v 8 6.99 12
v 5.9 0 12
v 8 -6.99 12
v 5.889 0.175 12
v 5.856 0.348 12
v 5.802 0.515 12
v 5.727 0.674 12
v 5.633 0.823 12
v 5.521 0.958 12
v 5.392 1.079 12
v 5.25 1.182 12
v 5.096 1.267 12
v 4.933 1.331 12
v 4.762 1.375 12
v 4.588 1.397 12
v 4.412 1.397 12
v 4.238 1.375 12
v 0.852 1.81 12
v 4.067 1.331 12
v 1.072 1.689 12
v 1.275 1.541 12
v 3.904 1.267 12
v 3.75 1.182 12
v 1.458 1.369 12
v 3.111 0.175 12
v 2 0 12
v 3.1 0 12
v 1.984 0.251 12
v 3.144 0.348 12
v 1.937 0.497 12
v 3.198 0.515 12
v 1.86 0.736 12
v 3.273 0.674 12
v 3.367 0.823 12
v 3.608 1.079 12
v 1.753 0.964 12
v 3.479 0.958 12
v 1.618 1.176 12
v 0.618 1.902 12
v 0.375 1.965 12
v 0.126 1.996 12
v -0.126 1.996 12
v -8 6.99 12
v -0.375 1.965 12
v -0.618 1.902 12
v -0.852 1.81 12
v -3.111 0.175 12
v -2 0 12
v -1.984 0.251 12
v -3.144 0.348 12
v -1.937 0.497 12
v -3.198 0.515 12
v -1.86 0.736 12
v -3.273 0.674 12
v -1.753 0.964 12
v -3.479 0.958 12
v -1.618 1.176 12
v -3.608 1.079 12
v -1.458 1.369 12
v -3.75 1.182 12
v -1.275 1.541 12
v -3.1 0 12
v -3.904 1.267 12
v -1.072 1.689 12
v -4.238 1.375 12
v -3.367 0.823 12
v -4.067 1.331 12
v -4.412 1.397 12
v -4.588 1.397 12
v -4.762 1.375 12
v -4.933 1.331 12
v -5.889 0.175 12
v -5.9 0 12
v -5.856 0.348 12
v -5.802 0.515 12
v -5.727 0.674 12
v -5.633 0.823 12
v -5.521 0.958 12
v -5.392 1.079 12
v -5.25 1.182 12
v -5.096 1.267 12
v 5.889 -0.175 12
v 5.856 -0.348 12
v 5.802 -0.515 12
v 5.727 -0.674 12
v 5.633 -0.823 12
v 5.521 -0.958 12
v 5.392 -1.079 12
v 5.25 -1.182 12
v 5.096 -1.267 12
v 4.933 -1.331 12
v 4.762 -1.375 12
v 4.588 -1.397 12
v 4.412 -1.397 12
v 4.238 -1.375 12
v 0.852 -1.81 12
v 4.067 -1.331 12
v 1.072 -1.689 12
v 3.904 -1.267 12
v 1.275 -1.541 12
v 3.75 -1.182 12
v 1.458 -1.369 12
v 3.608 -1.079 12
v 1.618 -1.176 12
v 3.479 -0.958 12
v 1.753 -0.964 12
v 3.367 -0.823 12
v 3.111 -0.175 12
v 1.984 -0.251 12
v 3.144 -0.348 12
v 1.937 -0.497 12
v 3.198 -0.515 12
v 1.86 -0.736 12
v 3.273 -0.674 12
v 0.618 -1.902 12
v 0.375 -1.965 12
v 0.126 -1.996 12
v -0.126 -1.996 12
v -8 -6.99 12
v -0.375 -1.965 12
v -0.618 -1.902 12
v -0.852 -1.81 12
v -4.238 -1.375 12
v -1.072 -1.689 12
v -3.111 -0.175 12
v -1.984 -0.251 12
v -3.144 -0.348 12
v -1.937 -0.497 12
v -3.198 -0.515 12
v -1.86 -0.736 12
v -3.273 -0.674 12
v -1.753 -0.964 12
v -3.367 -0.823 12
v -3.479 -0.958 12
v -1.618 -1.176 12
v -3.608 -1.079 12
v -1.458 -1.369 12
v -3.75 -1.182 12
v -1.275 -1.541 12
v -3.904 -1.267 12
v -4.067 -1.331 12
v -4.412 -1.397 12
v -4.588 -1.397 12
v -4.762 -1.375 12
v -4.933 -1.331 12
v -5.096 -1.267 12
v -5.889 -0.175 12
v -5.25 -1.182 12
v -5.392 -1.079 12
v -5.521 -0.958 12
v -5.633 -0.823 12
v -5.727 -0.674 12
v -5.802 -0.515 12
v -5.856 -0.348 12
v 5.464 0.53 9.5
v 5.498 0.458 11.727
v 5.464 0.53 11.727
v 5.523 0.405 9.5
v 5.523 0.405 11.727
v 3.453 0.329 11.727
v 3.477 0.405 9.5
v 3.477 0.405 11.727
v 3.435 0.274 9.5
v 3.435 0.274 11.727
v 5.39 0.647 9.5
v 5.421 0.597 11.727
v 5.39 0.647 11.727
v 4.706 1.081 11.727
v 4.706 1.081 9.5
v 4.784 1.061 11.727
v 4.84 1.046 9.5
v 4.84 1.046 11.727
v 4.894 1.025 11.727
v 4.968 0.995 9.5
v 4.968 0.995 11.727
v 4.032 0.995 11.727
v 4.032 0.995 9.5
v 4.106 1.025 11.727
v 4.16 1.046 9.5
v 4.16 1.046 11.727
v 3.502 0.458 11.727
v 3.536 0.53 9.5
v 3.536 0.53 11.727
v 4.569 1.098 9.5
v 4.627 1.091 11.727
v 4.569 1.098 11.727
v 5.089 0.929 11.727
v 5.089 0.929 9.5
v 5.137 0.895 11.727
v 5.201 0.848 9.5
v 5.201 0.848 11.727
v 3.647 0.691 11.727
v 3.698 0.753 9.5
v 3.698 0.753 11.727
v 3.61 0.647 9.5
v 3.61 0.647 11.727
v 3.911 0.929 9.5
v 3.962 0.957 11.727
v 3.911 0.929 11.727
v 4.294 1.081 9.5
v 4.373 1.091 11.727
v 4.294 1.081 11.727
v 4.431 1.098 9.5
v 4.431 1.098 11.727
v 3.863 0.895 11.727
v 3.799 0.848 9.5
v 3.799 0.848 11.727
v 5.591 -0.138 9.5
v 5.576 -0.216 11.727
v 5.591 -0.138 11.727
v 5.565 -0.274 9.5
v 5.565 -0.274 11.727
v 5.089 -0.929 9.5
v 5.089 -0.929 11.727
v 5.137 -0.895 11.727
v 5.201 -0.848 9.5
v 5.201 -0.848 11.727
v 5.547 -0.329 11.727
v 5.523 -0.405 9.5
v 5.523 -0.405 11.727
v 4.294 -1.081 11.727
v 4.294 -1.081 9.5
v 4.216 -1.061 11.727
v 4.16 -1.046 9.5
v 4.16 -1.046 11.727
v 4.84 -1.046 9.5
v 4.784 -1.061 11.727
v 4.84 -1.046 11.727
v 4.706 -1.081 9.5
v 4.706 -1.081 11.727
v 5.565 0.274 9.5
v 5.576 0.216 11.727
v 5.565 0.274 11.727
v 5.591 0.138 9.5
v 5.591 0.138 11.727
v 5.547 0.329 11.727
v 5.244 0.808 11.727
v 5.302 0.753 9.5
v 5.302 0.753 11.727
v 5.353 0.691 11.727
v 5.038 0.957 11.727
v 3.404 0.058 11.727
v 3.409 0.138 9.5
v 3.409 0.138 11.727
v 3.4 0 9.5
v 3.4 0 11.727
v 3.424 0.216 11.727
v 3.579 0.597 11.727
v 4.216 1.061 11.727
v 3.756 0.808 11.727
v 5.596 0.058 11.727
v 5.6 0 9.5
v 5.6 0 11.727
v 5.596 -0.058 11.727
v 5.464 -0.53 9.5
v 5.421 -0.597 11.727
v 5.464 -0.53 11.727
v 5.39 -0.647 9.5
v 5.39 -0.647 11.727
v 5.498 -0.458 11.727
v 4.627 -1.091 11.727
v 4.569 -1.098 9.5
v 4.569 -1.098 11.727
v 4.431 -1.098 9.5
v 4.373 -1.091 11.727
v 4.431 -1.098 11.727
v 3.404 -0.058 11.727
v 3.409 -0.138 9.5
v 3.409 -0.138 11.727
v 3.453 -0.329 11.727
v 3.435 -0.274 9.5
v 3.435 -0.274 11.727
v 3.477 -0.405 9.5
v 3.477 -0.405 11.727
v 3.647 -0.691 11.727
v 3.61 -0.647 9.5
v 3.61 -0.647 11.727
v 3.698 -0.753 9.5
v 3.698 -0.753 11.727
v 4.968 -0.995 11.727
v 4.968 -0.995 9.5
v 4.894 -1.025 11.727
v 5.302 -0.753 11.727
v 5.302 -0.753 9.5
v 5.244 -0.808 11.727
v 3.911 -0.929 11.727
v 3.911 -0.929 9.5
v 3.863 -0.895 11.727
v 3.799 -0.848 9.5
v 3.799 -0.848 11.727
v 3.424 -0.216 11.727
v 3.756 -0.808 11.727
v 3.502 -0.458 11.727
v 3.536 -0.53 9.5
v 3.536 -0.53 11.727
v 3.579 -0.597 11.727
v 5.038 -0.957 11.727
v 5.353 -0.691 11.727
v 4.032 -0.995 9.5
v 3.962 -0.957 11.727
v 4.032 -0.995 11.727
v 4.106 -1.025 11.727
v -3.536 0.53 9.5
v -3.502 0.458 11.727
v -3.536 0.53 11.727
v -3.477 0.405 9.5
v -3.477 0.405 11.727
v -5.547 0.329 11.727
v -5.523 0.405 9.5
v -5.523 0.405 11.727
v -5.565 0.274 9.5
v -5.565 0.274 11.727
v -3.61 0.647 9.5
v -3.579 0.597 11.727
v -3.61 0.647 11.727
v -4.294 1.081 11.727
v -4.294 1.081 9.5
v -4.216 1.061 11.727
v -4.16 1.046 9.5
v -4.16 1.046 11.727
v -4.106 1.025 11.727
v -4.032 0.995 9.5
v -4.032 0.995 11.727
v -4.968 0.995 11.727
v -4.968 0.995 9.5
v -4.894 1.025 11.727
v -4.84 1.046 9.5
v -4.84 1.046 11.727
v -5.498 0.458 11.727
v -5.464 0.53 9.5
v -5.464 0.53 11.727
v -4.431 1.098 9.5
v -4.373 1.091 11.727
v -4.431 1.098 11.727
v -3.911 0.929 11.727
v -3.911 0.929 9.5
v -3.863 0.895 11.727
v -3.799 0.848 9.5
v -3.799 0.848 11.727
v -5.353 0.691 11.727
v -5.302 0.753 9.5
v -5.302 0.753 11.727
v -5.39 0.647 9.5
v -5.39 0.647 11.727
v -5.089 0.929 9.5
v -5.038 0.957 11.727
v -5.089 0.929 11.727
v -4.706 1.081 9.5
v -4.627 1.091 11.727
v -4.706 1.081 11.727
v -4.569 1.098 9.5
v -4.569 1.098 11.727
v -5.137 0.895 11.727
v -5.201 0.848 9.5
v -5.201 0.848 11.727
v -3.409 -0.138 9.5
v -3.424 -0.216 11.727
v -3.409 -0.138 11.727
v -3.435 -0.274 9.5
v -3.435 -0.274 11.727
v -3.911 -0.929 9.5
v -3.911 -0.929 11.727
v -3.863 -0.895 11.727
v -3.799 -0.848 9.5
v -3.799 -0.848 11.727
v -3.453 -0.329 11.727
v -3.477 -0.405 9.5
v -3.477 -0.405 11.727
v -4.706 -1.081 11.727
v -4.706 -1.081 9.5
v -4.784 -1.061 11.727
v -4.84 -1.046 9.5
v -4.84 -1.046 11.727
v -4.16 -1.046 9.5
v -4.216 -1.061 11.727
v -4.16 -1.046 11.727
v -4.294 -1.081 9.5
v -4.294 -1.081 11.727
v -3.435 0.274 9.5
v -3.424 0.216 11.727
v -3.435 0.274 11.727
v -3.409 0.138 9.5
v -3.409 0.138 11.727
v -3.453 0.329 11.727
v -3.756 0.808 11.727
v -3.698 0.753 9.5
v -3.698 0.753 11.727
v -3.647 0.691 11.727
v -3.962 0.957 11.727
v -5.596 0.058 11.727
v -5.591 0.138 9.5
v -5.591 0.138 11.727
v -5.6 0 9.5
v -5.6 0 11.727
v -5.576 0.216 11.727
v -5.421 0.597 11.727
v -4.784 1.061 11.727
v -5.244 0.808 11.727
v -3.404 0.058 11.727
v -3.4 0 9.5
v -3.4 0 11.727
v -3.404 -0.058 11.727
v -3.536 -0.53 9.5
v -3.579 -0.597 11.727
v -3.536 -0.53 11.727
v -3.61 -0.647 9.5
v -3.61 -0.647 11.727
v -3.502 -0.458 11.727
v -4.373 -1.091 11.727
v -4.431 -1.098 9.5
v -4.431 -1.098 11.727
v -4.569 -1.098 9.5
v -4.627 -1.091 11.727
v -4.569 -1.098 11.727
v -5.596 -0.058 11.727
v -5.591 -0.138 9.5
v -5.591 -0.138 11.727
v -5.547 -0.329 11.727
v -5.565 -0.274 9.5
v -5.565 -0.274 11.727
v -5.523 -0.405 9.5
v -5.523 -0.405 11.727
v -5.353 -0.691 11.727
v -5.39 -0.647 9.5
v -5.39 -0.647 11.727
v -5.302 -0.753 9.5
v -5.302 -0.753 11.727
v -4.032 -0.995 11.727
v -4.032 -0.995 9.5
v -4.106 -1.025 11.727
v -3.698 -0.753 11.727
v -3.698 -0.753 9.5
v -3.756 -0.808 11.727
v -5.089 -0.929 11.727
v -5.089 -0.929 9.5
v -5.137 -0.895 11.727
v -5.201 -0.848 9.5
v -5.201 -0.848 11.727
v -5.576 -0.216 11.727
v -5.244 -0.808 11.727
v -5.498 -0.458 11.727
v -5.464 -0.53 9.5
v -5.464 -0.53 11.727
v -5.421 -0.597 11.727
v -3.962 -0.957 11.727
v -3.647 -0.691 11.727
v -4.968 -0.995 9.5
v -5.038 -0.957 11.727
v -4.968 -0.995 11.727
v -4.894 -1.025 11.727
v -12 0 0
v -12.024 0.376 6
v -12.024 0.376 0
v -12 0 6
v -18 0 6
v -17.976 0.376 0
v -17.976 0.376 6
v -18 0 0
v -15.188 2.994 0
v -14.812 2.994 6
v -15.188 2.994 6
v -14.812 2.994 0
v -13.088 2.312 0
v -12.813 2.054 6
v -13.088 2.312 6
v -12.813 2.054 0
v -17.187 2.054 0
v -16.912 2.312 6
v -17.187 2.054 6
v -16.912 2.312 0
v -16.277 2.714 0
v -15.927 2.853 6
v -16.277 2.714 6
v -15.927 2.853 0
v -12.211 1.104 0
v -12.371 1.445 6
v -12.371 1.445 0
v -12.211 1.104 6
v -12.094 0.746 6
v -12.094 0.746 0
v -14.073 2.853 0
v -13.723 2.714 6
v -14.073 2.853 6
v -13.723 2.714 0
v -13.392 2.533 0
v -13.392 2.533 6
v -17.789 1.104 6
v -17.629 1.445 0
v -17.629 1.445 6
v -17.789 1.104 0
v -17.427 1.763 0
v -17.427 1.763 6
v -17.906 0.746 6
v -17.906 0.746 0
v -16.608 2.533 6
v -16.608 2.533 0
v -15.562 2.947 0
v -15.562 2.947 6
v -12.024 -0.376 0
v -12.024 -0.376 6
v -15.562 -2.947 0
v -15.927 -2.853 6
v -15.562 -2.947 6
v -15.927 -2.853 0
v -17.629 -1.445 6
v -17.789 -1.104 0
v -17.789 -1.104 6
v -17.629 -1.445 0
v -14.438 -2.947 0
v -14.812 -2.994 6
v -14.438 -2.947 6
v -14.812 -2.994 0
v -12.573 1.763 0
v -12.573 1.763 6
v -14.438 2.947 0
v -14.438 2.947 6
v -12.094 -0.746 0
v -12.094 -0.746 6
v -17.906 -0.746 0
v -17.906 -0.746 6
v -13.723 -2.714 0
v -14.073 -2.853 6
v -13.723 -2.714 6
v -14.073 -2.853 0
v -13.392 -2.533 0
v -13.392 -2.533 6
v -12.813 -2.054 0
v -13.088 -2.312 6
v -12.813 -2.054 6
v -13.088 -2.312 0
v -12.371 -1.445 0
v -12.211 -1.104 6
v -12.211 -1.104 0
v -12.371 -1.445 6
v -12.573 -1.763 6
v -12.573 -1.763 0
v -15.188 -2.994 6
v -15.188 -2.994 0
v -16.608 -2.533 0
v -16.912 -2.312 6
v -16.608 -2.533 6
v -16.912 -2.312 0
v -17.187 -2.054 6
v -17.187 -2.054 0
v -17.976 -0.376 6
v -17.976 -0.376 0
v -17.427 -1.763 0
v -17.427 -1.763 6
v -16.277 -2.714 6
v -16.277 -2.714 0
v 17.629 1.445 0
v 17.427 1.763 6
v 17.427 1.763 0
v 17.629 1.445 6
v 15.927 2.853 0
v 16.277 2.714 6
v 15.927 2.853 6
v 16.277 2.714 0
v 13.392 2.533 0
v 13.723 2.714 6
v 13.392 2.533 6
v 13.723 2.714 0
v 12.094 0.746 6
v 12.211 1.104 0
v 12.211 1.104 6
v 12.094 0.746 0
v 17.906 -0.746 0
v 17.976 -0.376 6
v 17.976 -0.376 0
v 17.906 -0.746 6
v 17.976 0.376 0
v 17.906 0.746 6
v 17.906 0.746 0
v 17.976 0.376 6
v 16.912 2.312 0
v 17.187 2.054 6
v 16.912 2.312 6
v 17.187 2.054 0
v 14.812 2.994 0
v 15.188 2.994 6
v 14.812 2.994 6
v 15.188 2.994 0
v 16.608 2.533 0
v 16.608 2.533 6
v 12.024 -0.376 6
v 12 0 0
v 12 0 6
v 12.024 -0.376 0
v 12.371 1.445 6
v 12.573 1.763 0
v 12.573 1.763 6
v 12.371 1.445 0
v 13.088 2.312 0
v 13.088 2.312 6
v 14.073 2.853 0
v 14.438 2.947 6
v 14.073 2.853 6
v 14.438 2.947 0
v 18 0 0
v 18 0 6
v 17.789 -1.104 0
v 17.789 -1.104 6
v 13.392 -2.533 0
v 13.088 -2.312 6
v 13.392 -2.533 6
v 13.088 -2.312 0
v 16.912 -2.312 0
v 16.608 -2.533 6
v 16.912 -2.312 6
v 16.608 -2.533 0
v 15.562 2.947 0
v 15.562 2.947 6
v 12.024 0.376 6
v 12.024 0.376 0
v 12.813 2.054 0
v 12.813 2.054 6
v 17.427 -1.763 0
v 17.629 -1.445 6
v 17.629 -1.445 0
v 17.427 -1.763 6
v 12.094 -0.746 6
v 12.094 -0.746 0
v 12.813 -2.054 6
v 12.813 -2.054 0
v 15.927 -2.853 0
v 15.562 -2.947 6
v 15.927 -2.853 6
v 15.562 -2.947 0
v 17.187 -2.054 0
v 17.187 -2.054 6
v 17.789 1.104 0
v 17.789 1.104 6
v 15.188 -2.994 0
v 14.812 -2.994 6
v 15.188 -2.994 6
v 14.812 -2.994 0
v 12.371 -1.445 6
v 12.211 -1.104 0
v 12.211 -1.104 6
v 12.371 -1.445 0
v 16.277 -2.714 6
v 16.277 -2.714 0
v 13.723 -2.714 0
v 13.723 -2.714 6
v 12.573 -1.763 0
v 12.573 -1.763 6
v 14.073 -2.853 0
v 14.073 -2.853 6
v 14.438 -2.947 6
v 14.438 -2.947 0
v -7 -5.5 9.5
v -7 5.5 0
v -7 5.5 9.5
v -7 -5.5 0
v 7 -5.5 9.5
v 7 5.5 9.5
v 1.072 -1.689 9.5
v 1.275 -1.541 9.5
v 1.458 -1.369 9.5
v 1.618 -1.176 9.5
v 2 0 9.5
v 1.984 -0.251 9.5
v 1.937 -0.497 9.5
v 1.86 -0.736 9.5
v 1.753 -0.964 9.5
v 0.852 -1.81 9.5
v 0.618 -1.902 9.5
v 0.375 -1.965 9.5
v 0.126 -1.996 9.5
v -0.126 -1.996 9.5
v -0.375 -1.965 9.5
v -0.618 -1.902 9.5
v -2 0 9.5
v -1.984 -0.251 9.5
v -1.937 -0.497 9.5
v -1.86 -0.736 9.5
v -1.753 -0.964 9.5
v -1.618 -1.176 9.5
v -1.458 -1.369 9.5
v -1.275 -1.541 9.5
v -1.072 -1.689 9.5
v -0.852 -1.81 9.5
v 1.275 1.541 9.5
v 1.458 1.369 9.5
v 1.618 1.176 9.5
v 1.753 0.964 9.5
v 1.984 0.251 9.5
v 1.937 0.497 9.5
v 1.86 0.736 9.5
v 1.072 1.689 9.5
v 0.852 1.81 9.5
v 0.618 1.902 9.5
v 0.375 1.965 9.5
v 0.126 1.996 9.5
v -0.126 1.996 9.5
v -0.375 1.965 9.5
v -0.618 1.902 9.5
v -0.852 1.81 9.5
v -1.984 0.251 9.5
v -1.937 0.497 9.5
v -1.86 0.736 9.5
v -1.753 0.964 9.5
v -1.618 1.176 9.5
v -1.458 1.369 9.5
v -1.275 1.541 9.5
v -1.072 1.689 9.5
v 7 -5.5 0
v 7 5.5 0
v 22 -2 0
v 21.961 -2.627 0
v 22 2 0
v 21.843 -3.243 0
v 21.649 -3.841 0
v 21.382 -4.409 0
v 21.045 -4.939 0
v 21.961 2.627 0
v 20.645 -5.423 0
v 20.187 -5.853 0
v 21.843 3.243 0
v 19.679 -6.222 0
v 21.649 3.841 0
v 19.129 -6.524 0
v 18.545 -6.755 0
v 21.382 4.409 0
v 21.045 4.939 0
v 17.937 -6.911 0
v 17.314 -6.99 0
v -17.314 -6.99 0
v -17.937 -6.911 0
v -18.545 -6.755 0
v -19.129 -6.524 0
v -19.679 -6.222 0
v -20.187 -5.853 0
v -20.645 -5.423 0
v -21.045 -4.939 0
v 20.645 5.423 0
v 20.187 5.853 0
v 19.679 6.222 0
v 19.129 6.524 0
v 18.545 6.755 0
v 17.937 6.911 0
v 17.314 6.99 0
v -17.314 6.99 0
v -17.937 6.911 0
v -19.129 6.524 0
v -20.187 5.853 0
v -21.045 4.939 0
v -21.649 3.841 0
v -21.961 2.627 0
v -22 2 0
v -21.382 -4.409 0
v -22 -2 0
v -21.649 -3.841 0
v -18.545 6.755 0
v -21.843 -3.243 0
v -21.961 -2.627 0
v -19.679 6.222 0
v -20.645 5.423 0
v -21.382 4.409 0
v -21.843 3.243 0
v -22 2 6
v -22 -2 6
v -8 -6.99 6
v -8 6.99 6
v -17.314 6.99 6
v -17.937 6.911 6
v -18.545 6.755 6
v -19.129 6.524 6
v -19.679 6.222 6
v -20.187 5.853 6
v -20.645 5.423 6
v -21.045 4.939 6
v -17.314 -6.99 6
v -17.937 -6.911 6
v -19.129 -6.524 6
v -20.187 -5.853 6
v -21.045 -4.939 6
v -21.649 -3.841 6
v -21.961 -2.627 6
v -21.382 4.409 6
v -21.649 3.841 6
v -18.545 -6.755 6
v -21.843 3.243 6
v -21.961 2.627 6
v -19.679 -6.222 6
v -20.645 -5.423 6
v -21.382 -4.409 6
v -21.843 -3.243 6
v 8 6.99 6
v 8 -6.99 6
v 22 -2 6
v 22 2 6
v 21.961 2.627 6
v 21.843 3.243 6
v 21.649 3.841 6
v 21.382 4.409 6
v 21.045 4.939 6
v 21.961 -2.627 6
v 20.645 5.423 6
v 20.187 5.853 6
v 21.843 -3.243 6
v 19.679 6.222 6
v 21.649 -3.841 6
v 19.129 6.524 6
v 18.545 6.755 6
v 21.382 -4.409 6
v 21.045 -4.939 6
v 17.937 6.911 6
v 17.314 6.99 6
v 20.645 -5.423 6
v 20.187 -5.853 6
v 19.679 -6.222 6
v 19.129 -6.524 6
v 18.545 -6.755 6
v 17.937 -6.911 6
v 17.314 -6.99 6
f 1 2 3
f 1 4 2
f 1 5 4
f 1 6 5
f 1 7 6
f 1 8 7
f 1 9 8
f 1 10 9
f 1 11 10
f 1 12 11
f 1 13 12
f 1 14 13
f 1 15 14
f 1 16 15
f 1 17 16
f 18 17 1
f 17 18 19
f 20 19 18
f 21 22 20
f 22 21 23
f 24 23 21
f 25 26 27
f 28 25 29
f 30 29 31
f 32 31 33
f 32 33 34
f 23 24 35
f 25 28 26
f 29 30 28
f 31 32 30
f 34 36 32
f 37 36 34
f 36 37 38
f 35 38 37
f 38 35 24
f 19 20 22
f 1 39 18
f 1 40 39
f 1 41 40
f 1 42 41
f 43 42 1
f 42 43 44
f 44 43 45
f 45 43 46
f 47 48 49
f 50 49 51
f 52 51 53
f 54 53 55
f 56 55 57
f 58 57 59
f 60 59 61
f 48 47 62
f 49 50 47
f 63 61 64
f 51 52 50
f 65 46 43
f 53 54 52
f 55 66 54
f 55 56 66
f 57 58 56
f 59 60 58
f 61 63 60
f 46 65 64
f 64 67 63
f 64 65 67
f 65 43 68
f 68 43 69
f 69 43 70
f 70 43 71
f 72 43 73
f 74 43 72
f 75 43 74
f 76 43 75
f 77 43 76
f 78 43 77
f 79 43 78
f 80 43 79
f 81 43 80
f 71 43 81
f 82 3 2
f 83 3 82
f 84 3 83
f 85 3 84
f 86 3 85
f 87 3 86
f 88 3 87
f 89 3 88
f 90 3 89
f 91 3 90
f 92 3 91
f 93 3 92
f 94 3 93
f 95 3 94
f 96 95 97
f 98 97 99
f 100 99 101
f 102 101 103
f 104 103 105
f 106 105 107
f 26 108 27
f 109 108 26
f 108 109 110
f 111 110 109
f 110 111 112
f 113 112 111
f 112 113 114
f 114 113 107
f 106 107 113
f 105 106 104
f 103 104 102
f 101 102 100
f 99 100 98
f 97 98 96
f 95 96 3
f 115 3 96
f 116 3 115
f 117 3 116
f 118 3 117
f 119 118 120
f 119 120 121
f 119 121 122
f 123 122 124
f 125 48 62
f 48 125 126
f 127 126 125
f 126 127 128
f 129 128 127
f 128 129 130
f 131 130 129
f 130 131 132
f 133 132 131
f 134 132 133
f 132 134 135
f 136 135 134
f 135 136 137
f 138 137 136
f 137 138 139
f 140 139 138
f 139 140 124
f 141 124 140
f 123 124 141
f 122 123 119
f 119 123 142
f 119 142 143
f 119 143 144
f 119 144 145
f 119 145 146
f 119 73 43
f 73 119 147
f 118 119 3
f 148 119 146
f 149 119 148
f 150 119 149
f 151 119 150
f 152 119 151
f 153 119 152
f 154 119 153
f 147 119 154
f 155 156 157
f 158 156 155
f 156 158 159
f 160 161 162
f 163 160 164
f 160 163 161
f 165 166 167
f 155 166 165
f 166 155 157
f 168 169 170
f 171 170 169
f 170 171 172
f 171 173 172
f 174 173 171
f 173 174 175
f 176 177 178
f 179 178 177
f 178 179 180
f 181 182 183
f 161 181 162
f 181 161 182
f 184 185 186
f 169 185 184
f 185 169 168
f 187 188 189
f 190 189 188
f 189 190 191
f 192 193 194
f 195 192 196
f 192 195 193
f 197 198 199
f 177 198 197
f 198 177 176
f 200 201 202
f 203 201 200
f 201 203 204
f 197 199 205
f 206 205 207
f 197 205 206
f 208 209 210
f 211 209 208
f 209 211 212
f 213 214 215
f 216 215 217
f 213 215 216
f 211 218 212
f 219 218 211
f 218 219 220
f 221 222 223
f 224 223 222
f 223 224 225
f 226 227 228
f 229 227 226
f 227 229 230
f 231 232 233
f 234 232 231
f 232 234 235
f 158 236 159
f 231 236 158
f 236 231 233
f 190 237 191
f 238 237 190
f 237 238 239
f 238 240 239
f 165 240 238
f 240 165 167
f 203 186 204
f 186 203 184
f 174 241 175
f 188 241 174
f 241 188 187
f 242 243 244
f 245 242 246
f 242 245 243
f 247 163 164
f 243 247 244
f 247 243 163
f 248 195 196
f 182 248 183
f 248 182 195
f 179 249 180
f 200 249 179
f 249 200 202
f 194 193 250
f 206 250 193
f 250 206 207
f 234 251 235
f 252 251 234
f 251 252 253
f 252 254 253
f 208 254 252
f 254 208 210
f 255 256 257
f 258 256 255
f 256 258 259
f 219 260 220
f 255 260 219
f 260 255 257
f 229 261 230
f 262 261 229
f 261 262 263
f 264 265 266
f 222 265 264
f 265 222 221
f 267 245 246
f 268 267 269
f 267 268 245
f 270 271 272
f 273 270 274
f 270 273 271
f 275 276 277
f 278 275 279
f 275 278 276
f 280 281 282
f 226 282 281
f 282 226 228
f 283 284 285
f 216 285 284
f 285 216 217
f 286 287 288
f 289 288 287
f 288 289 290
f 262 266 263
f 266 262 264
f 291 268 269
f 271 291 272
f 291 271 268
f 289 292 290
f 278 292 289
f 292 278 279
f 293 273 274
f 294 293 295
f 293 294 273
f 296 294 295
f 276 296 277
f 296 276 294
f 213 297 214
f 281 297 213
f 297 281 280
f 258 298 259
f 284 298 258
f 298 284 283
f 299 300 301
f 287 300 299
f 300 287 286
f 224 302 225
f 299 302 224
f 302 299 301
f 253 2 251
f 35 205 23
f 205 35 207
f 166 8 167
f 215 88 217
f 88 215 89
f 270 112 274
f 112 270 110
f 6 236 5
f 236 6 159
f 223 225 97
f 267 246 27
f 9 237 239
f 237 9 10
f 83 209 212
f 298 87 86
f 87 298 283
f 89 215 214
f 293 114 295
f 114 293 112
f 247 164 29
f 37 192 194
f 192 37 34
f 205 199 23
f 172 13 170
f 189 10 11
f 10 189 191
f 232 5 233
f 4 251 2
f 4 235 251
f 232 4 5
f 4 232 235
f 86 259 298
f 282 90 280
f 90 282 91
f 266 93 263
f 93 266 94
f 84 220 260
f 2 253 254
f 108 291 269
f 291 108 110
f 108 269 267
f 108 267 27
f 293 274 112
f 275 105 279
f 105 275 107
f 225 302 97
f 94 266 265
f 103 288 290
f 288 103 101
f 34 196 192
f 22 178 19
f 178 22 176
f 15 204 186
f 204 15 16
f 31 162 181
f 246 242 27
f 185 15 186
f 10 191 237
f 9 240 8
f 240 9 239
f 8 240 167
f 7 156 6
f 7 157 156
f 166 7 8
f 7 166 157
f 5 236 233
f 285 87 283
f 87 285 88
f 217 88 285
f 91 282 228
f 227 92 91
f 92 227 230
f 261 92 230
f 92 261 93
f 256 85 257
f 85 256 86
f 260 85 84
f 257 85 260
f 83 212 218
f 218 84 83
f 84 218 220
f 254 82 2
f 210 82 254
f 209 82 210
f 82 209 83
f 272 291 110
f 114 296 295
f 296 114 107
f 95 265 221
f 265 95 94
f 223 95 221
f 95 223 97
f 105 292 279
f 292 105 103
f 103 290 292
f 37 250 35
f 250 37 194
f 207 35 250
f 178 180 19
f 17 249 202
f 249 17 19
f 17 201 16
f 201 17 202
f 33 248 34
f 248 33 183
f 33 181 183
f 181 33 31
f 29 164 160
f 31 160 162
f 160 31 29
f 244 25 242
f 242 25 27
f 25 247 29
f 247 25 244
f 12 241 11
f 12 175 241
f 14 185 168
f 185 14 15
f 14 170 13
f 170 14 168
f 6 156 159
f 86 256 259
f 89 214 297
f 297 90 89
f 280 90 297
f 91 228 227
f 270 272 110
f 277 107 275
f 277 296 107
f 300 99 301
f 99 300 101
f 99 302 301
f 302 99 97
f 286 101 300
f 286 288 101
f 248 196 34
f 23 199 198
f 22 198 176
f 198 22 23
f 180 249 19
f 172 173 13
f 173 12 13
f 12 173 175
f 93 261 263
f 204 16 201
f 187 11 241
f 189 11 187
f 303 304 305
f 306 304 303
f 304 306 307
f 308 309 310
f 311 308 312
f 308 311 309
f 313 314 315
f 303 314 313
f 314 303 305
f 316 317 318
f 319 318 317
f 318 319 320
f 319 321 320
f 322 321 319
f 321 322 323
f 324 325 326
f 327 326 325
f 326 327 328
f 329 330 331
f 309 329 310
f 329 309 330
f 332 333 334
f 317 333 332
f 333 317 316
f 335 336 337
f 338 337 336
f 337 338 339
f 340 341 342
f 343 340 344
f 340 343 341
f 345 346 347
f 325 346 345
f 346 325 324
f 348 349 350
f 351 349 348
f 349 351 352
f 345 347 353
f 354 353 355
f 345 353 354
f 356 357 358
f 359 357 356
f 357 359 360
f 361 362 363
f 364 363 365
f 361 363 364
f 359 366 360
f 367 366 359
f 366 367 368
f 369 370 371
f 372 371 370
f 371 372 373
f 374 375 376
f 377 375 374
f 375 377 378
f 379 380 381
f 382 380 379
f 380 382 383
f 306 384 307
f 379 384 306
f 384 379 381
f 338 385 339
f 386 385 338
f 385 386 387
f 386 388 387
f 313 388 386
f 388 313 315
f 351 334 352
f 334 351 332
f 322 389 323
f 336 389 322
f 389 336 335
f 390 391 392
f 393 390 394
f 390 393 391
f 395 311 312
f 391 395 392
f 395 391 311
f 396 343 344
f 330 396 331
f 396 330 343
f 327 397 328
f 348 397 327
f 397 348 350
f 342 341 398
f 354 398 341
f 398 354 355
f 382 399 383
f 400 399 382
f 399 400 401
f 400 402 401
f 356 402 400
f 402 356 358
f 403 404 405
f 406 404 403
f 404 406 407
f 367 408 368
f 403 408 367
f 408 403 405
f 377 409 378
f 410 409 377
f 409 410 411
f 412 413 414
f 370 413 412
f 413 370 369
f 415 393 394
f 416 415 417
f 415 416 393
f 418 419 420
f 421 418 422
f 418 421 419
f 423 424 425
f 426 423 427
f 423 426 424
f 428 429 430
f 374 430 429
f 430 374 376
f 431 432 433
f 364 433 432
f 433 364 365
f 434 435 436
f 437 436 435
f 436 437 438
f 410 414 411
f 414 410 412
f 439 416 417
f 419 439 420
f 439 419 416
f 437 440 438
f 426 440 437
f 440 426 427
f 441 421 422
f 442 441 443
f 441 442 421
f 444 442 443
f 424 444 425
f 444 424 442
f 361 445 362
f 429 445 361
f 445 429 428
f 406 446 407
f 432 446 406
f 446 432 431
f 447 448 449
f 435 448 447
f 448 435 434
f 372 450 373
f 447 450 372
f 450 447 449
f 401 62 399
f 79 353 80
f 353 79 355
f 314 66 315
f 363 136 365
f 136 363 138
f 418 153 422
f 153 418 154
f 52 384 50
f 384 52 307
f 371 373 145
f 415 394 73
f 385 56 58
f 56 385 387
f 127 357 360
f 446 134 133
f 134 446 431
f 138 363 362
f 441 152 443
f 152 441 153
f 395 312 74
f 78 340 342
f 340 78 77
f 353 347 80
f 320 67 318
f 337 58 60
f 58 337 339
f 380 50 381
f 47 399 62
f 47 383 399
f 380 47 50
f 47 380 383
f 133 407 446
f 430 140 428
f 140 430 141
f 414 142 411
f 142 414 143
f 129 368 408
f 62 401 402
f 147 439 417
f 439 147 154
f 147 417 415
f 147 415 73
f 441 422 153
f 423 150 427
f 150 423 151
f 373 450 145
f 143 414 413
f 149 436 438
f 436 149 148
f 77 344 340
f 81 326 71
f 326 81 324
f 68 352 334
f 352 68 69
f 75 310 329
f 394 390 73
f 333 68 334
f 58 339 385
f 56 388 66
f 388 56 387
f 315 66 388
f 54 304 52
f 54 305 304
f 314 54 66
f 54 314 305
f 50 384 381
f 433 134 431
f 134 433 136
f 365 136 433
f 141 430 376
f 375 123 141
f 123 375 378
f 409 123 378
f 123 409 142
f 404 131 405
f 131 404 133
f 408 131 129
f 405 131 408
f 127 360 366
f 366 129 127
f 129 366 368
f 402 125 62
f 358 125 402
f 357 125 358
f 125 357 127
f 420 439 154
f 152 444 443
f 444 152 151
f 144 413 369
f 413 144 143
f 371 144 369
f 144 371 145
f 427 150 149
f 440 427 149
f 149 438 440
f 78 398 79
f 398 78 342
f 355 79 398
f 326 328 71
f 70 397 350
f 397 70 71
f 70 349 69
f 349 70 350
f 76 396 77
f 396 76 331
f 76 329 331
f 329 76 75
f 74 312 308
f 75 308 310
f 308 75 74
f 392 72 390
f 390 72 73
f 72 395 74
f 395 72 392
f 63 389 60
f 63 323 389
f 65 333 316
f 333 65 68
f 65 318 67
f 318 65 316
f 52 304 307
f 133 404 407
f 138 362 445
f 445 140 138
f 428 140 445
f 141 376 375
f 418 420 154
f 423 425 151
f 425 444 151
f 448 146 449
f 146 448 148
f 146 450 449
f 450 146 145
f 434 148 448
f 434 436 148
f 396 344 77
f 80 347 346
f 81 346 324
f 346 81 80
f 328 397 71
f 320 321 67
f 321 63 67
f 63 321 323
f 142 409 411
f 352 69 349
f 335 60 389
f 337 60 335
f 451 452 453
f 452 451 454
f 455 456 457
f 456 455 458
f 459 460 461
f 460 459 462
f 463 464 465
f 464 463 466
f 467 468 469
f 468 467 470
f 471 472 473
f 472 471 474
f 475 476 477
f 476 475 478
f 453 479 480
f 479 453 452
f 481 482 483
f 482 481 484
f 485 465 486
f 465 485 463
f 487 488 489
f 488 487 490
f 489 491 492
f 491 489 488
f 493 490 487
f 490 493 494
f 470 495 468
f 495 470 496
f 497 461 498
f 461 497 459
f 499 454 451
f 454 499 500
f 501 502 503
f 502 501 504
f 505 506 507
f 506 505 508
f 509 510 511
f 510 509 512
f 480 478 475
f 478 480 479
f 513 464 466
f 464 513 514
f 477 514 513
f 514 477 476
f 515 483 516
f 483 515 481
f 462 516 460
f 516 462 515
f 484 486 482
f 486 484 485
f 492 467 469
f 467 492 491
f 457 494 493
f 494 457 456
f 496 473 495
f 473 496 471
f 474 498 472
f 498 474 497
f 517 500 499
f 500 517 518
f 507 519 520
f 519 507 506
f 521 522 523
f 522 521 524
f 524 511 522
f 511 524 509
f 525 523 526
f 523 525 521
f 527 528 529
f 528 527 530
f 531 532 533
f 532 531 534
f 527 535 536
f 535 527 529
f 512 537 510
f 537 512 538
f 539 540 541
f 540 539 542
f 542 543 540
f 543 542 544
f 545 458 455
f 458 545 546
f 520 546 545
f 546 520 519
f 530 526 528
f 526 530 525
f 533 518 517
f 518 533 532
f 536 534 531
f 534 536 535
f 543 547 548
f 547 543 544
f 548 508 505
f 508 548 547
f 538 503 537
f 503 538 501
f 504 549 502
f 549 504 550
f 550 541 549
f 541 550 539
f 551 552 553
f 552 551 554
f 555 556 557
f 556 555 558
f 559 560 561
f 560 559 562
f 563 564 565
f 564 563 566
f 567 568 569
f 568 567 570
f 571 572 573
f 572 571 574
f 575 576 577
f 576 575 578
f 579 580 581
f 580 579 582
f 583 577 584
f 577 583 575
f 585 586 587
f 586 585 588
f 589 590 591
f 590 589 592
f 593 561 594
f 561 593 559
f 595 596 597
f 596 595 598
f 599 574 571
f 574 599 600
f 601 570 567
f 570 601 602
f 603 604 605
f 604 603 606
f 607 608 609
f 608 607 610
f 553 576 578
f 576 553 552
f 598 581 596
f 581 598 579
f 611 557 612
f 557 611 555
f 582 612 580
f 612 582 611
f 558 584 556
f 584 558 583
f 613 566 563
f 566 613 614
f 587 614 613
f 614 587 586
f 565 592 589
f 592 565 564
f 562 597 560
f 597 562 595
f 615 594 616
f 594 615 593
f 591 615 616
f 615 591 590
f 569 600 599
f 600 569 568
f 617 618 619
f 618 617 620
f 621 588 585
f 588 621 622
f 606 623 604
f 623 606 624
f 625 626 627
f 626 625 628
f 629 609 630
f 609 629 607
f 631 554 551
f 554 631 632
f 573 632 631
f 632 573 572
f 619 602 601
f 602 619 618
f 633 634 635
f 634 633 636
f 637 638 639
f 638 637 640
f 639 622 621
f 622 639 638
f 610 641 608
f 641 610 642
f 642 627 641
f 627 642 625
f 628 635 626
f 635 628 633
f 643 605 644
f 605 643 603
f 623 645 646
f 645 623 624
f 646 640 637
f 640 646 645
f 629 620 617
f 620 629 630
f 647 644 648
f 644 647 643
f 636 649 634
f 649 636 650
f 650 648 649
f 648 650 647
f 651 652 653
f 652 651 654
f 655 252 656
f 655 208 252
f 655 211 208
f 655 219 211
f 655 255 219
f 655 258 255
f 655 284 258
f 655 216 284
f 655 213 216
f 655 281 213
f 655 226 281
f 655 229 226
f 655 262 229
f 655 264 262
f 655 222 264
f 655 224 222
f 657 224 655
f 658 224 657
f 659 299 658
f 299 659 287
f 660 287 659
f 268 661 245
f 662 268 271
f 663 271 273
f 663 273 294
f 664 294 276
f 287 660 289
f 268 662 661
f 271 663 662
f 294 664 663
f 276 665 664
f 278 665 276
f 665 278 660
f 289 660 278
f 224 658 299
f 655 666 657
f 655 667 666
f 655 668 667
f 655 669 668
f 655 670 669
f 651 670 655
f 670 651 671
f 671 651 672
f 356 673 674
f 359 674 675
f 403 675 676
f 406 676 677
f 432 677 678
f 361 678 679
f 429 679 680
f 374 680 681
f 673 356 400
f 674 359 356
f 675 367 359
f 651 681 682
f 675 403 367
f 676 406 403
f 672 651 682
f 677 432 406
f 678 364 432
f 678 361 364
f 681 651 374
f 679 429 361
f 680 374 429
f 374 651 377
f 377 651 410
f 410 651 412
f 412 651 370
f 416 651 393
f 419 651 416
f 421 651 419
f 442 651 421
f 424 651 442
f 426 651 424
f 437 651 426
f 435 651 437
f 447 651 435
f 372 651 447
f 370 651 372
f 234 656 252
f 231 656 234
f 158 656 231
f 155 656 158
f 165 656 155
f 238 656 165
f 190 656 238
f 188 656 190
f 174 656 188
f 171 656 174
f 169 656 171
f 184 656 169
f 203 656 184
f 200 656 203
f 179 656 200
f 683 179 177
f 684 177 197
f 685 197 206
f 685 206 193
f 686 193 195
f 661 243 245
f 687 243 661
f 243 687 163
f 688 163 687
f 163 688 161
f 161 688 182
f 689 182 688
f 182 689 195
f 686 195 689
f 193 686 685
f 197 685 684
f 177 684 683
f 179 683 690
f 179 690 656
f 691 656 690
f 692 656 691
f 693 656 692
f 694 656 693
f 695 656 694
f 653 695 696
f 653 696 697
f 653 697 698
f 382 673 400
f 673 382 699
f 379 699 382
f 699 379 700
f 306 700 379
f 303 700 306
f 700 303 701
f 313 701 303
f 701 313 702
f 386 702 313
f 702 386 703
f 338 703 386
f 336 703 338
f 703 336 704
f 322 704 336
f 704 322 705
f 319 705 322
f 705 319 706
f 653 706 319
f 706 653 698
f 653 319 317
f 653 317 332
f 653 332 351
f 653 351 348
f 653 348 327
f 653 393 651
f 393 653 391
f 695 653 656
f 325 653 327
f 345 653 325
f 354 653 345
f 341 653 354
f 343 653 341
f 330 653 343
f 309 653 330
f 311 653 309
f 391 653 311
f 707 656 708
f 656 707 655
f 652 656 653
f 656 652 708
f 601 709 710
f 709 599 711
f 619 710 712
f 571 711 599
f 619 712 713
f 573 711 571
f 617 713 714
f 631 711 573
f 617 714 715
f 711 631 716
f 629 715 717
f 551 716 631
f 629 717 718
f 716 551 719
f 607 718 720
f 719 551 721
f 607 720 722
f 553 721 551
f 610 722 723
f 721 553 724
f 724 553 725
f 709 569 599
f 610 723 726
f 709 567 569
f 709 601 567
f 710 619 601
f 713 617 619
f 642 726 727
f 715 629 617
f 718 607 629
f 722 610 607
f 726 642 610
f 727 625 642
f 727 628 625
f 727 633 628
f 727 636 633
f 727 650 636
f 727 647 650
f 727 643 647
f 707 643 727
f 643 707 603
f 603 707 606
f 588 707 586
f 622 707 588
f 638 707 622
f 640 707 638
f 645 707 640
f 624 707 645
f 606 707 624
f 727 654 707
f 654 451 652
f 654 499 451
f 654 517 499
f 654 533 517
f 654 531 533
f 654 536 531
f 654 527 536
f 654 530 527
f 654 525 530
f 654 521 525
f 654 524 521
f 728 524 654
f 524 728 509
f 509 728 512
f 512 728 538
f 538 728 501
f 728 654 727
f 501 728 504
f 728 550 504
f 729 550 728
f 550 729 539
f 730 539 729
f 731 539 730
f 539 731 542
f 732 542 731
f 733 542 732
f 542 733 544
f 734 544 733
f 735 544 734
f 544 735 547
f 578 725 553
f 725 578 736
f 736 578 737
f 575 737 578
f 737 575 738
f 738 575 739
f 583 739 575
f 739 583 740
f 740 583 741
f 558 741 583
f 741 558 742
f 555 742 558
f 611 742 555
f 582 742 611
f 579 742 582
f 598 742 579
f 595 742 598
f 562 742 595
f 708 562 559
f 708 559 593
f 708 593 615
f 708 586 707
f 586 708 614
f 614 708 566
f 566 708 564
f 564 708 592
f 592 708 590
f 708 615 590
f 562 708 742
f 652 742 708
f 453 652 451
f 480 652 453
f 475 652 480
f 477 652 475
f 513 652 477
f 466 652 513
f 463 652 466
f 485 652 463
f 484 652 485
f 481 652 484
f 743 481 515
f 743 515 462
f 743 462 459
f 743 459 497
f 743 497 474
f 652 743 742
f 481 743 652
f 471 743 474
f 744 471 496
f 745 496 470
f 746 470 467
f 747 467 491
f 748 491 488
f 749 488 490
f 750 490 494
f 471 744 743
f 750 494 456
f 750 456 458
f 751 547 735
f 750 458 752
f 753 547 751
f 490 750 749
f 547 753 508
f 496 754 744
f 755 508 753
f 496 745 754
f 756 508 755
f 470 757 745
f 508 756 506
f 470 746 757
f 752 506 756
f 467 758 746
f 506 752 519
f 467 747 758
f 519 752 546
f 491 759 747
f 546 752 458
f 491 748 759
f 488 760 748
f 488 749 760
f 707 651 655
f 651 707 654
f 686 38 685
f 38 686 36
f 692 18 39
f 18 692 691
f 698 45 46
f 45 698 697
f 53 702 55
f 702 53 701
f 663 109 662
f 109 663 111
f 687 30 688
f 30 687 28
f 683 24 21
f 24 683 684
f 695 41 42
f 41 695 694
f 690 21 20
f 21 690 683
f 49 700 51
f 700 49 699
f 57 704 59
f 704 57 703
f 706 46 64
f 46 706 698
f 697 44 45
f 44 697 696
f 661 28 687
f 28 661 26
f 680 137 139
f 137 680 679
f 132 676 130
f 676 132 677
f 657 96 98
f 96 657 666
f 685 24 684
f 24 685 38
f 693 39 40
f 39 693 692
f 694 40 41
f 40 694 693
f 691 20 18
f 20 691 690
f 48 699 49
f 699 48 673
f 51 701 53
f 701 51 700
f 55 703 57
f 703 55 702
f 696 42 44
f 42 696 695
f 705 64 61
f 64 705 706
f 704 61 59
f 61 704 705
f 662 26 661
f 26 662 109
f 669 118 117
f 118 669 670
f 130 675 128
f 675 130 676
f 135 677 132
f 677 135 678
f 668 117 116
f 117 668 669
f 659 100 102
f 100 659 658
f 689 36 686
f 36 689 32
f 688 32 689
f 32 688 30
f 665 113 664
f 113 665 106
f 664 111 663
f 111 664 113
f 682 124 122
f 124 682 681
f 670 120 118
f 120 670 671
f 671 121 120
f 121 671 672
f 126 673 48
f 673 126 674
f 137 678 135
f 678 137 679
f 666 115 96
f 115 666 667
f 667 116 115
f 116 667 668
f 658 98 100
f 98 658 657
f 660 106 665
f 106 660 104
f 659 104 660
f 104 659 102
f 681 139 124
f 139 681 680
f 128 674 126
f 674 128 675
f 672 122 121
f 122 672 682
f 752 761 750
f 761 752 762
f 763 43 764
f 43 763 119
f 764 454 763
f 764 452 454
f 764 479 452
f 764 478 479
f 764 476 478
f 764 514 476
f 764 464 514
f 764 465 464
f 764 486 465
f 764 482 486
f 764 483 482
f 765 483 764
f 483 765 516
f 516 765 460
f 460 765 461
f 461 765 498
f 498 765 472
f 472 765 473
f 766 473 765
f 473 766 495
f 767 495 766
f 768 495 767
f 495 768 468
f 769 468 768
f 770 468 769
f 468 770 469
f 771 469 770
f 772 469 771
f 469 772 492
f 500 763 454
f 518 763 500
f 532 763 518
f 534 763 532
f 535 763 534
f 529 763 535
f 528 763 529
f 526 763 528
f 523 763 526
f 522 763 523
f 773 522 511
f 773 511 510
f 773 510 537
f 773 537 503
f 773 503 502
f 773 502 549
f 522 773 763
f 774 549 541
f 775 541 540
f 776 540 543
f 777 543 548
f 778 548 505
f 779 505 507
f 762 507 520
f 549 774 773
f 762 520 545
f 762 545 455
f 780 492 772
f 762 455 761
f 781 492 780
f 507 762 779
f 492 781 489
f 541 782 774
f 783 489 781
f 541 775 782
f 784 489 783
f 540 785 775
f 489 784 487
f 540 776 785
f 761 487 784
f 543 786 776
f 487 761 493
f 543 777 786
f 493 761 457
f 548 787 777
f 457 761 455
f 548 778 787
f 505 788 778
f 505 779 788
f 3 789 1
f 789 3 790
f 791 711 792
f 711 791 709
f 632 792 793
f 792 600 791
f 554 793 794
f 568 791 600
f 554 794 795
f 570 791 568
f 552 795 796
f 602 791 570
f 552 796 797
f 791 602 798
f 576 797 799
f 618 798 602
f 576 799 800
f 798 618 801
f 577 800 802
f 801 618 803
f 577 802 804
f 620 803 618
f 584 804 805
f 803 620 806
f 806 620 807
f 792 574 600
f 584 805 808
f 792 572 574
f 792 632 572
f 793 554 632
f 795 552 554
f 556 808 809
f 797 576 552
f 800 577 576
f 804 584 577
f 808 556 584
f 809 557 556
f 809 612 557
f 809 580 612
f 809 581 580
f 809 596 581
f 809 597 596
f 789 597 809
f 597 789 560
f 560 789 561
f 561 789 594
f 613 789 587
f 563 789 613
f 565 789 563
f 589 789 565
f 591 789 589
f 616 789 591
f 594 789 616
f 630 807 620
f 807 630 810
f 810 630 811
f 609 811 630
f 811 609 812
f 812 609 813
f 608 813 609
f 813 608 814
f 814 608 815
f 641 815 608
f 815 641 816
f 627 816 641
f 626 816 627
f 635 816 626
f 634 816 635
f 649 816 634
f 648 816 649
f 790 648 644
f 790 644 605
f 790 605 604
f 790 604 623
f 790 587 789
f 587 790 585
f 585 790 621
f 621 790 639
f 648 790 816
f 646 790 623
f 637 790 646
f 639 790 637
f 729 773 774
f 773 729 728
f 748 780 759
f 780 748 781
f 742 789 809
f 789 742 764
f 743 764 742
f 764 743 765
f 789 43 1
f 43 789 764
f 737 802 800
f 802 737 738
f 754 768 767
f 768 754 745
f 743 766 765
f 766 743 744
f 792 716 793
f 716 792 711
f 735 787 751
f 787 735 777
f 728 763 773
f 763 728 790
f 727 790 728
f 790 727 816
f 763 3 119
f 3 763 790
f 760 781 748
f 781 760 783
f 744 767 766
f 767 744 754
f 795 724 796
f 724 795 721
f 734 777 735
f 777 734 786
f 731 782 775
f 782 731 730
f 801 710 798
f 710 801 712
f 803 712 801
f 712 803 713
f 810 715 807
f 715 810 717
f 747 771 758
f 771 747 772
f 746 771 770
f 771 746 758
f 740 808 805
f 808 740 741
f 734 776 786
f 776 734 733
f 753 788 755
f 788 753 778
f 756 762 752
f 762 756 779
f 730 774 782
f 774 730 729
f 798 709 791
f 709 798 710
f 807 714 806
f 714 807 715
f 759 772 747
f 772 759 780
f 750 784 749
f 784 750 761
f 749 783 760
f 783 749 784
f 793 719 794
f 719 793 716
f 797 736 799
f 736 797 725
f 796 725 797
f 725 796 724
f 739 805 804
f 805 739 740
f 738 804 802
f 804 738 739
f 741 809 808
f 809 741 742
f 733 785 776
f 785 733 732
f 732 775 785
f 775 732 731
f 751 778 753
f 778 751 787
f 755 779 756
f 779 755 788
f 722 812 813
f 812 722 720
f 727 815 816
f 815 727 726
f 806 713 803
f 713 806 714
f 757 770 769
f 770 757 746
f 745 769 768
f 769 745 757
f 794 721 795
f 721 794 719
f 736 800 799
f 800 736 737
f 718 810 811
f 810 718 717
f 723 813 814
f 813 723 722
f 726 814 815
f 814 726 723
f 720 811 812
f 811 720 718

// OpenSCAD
$fn = 50;


difference() {
	union() {
		hull() {
			translate(v = [-17.0000000000, 2.0000000000, 0]) {
				cylinder(h = 12, r = 5);
			}
			translate(v = [17.0000000000, 2.0000000000, 0]) {
				cylinder(h = 12, r = 5);
			}
			translate(v = [-17.0000000000, -2.0000000000, 0]) {
				cylinder(h = 12, r = 5);
			}
			translate(v = [17.0000000000, -2.0000000000, 0]) {
				cylinder(h = 12, r = 5);
			}
		}
	}
	union() {
		translate(v = [4.5000000000, 0, 12]) {
			rotate(a = [0, 0, 0]) {
				difference() {
					union() {
						translate(v = [0, 0, -4.0000000000]) {
							cylinder(h = 4, r = 0.8500000000);
						}
						translate(v = [0, 0, -4.0000000000]) {
							cylinder(h = 4, r = 1.1000000000);
						}
						translate(v = [0, 0, -0.5000000000]) {
							cylinder(h = 0.5000000000, r1 = 0.8500000000, r2 = 1.4000000000);
						}
						translate(v = [0, 0, -4.0000000000]) {
							cylinder(h = 4, r = 0.8500000000);
						}
					}
					union();
				}
			}
		}
		translate(v = [-4.5000000000, 0, 12]) {
			rotate(a = [0, 0, 0]) {
				difference() {
					union() {
						translate(v = [0, 0, -4.0000000000]) {
							cylinder(h = 4, r = 0.8500000000);
						}
						translate(v = [0, 0, -4.0000000000]) {
							cylinder(h = 4, r = 1.1000000000);
						}
						translate(v = [0, 0, -0.5000000000]) {
							cylinder(h = 0.5000000000, r1 = 0.8500000000, r2 = 1.4000000000);
						}
						translate(v = [0, 0, -4.0000000000]) {
							cylinder(h = 4, r = 0.8500000000);
						}
					}
					union();
				}
			}
		}
		translate(v = [-15.0000000000, 0.0000000000, -100.0000000000]) {
			cylinder(h = 200, r = 3.0000000000);
		}
		translate(v = [15.0000000000, 0.0000000000, -100.0000000000]) {
			cylinder(h = 200, r = 3.0000000000);
		}
		translate(v = [15.0000000000, 0.0000000000, -100.0000000000]) {
			cylinder(h = 200, r = 3.0000000000);
		}
		translate(v = [-15.0000000000, 0.0000000000, -100.0000000000]) {
			cylinder(h = 200, r = 1.5000000000);
		}
		translate(v = [15.0000000000, 0.0000000000, -100.0000000000]) {
			cylinder(h = 200, r = 1.5000000000);
		}
		translate(v = [-15.0000000000, 0.0000000000, -100.0000000000]) {
			cylinder(h = 200, r = 1.5000000000);
		}
		translate(v = [15.0000000000, 0.0000000000, -100.0000000000]) {
			cylinder(h = 200, r = 1.5000000000);
		}
		translate(v = [-15.0000000000, 0.0000000000, -100.0000000000]) {
			cylinder(h = 200, r = 1.5000000000);
		}
		translate(v = [15.0000000000, 0.0000000000, -100.0000000000]) {
			cylinder(h = 200, r = 1.5000000000);
		}
		translate(v = [-7.0000000000, -5.5000000000, 0]) {
			cube(size = [14, 11, 9.5000000000]);
		}
		cylinder(h = 12, r = 2.0000000000);
		translate(v = [-22.0000000000, -7.0000000000, 6]) {
			cube(size = [14, 14, 6]);
		}
		translate(v = [8.0000000000, -7.0000000000, 6]) {
			cube(size = [14, 14, 6]);
		}
	}
}
